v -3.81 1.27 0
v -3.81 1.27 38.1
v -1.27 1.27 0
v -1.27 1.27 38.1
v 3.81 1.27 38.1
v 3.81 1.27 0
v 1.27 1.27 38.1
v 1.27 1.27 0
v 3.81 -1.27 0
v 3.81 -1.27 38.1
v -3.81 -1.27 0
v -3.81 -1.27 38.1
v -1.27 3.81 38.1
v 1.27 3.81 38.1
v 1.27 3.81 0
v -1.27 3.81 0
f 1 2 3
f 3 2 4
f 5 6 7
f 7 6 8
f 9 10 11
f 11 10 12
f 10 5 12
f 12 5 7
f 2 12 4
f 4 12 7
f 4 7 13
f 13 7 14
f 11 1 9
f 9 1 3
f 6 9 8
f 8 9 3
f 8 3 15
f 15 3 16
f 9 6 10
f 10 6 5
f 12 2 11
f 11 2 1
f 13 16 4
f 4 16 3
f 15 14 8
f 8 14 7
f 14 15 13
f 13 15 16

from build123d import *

# Parameters (mm, degrees)
SKETCH1_W           = 12.7
SKETCH1_H           = 2.54
BOSS_EXTRUDE1_DEPTH = 38.1
SKETCH3_W           = 38.1
SKETCH3_H           = 2.54
CUT_EXTRUDE1_DEPTH  = 2.54
SKETCH4_W           = 38.1
SKETCH4_H           = 2.54
CUT_EXTRUDE2_DEPTH  = 2.54
SKETCH5_W           = 2.54
SKETCH5_H           = 38.1
BOSS_EXTRUDE3_DEPTH = 2.54


with BuildPart() as part:
    # Sketch1 → Boss-Extrude1 (new body)
    with BuildSketch(Plane.XY):
        Rectangle(SKETCH1_W, SKETCH1_H)
    extrude(amount=BOSS_EXTRUDE1_DEPTH)

    # Sketch3 → Cut-Extrude1 (cut)
    with BuildSketch(Plane(origin=(6.35, 0, 0), x_dir=(0, 0, -1), z_dir=(1, 0, 0))):
        with Locations((-19.05, 0)):
            Rectangle(SKETCH3_W, SKETCH3_H)
    extrude(amount=-CUT_EXTRUDE1_DEPTH, mode=Mode.SUBTRACT)

    # Sketch4 → Cut-Extrude2 (cut)
    with BuildSketch(Plane.ZY.offset(6.35)):
        with Locations((19.05, 0)):
            Rectangle(SKETCH4_W, SKETCH4_H)
    extrude(amount=-CUT_EXTRUDE2_DEPTH, mode=Mode.SUBTRACT)

    # Sketch5 → Boss-Extrude3 (add)
    with BuildSketch(Plane(origin=(0, 1.27, 0), x_dir=(1, 0, 0), z_dir=(0, 1, 0))):
        with Locations((0, -19.05)):
            Rectangle(SKETCH5_W, SKETCH5_H)
    extrude(amount=BOSS_EXTRUDE3_DEPTH)


solid = part.part
